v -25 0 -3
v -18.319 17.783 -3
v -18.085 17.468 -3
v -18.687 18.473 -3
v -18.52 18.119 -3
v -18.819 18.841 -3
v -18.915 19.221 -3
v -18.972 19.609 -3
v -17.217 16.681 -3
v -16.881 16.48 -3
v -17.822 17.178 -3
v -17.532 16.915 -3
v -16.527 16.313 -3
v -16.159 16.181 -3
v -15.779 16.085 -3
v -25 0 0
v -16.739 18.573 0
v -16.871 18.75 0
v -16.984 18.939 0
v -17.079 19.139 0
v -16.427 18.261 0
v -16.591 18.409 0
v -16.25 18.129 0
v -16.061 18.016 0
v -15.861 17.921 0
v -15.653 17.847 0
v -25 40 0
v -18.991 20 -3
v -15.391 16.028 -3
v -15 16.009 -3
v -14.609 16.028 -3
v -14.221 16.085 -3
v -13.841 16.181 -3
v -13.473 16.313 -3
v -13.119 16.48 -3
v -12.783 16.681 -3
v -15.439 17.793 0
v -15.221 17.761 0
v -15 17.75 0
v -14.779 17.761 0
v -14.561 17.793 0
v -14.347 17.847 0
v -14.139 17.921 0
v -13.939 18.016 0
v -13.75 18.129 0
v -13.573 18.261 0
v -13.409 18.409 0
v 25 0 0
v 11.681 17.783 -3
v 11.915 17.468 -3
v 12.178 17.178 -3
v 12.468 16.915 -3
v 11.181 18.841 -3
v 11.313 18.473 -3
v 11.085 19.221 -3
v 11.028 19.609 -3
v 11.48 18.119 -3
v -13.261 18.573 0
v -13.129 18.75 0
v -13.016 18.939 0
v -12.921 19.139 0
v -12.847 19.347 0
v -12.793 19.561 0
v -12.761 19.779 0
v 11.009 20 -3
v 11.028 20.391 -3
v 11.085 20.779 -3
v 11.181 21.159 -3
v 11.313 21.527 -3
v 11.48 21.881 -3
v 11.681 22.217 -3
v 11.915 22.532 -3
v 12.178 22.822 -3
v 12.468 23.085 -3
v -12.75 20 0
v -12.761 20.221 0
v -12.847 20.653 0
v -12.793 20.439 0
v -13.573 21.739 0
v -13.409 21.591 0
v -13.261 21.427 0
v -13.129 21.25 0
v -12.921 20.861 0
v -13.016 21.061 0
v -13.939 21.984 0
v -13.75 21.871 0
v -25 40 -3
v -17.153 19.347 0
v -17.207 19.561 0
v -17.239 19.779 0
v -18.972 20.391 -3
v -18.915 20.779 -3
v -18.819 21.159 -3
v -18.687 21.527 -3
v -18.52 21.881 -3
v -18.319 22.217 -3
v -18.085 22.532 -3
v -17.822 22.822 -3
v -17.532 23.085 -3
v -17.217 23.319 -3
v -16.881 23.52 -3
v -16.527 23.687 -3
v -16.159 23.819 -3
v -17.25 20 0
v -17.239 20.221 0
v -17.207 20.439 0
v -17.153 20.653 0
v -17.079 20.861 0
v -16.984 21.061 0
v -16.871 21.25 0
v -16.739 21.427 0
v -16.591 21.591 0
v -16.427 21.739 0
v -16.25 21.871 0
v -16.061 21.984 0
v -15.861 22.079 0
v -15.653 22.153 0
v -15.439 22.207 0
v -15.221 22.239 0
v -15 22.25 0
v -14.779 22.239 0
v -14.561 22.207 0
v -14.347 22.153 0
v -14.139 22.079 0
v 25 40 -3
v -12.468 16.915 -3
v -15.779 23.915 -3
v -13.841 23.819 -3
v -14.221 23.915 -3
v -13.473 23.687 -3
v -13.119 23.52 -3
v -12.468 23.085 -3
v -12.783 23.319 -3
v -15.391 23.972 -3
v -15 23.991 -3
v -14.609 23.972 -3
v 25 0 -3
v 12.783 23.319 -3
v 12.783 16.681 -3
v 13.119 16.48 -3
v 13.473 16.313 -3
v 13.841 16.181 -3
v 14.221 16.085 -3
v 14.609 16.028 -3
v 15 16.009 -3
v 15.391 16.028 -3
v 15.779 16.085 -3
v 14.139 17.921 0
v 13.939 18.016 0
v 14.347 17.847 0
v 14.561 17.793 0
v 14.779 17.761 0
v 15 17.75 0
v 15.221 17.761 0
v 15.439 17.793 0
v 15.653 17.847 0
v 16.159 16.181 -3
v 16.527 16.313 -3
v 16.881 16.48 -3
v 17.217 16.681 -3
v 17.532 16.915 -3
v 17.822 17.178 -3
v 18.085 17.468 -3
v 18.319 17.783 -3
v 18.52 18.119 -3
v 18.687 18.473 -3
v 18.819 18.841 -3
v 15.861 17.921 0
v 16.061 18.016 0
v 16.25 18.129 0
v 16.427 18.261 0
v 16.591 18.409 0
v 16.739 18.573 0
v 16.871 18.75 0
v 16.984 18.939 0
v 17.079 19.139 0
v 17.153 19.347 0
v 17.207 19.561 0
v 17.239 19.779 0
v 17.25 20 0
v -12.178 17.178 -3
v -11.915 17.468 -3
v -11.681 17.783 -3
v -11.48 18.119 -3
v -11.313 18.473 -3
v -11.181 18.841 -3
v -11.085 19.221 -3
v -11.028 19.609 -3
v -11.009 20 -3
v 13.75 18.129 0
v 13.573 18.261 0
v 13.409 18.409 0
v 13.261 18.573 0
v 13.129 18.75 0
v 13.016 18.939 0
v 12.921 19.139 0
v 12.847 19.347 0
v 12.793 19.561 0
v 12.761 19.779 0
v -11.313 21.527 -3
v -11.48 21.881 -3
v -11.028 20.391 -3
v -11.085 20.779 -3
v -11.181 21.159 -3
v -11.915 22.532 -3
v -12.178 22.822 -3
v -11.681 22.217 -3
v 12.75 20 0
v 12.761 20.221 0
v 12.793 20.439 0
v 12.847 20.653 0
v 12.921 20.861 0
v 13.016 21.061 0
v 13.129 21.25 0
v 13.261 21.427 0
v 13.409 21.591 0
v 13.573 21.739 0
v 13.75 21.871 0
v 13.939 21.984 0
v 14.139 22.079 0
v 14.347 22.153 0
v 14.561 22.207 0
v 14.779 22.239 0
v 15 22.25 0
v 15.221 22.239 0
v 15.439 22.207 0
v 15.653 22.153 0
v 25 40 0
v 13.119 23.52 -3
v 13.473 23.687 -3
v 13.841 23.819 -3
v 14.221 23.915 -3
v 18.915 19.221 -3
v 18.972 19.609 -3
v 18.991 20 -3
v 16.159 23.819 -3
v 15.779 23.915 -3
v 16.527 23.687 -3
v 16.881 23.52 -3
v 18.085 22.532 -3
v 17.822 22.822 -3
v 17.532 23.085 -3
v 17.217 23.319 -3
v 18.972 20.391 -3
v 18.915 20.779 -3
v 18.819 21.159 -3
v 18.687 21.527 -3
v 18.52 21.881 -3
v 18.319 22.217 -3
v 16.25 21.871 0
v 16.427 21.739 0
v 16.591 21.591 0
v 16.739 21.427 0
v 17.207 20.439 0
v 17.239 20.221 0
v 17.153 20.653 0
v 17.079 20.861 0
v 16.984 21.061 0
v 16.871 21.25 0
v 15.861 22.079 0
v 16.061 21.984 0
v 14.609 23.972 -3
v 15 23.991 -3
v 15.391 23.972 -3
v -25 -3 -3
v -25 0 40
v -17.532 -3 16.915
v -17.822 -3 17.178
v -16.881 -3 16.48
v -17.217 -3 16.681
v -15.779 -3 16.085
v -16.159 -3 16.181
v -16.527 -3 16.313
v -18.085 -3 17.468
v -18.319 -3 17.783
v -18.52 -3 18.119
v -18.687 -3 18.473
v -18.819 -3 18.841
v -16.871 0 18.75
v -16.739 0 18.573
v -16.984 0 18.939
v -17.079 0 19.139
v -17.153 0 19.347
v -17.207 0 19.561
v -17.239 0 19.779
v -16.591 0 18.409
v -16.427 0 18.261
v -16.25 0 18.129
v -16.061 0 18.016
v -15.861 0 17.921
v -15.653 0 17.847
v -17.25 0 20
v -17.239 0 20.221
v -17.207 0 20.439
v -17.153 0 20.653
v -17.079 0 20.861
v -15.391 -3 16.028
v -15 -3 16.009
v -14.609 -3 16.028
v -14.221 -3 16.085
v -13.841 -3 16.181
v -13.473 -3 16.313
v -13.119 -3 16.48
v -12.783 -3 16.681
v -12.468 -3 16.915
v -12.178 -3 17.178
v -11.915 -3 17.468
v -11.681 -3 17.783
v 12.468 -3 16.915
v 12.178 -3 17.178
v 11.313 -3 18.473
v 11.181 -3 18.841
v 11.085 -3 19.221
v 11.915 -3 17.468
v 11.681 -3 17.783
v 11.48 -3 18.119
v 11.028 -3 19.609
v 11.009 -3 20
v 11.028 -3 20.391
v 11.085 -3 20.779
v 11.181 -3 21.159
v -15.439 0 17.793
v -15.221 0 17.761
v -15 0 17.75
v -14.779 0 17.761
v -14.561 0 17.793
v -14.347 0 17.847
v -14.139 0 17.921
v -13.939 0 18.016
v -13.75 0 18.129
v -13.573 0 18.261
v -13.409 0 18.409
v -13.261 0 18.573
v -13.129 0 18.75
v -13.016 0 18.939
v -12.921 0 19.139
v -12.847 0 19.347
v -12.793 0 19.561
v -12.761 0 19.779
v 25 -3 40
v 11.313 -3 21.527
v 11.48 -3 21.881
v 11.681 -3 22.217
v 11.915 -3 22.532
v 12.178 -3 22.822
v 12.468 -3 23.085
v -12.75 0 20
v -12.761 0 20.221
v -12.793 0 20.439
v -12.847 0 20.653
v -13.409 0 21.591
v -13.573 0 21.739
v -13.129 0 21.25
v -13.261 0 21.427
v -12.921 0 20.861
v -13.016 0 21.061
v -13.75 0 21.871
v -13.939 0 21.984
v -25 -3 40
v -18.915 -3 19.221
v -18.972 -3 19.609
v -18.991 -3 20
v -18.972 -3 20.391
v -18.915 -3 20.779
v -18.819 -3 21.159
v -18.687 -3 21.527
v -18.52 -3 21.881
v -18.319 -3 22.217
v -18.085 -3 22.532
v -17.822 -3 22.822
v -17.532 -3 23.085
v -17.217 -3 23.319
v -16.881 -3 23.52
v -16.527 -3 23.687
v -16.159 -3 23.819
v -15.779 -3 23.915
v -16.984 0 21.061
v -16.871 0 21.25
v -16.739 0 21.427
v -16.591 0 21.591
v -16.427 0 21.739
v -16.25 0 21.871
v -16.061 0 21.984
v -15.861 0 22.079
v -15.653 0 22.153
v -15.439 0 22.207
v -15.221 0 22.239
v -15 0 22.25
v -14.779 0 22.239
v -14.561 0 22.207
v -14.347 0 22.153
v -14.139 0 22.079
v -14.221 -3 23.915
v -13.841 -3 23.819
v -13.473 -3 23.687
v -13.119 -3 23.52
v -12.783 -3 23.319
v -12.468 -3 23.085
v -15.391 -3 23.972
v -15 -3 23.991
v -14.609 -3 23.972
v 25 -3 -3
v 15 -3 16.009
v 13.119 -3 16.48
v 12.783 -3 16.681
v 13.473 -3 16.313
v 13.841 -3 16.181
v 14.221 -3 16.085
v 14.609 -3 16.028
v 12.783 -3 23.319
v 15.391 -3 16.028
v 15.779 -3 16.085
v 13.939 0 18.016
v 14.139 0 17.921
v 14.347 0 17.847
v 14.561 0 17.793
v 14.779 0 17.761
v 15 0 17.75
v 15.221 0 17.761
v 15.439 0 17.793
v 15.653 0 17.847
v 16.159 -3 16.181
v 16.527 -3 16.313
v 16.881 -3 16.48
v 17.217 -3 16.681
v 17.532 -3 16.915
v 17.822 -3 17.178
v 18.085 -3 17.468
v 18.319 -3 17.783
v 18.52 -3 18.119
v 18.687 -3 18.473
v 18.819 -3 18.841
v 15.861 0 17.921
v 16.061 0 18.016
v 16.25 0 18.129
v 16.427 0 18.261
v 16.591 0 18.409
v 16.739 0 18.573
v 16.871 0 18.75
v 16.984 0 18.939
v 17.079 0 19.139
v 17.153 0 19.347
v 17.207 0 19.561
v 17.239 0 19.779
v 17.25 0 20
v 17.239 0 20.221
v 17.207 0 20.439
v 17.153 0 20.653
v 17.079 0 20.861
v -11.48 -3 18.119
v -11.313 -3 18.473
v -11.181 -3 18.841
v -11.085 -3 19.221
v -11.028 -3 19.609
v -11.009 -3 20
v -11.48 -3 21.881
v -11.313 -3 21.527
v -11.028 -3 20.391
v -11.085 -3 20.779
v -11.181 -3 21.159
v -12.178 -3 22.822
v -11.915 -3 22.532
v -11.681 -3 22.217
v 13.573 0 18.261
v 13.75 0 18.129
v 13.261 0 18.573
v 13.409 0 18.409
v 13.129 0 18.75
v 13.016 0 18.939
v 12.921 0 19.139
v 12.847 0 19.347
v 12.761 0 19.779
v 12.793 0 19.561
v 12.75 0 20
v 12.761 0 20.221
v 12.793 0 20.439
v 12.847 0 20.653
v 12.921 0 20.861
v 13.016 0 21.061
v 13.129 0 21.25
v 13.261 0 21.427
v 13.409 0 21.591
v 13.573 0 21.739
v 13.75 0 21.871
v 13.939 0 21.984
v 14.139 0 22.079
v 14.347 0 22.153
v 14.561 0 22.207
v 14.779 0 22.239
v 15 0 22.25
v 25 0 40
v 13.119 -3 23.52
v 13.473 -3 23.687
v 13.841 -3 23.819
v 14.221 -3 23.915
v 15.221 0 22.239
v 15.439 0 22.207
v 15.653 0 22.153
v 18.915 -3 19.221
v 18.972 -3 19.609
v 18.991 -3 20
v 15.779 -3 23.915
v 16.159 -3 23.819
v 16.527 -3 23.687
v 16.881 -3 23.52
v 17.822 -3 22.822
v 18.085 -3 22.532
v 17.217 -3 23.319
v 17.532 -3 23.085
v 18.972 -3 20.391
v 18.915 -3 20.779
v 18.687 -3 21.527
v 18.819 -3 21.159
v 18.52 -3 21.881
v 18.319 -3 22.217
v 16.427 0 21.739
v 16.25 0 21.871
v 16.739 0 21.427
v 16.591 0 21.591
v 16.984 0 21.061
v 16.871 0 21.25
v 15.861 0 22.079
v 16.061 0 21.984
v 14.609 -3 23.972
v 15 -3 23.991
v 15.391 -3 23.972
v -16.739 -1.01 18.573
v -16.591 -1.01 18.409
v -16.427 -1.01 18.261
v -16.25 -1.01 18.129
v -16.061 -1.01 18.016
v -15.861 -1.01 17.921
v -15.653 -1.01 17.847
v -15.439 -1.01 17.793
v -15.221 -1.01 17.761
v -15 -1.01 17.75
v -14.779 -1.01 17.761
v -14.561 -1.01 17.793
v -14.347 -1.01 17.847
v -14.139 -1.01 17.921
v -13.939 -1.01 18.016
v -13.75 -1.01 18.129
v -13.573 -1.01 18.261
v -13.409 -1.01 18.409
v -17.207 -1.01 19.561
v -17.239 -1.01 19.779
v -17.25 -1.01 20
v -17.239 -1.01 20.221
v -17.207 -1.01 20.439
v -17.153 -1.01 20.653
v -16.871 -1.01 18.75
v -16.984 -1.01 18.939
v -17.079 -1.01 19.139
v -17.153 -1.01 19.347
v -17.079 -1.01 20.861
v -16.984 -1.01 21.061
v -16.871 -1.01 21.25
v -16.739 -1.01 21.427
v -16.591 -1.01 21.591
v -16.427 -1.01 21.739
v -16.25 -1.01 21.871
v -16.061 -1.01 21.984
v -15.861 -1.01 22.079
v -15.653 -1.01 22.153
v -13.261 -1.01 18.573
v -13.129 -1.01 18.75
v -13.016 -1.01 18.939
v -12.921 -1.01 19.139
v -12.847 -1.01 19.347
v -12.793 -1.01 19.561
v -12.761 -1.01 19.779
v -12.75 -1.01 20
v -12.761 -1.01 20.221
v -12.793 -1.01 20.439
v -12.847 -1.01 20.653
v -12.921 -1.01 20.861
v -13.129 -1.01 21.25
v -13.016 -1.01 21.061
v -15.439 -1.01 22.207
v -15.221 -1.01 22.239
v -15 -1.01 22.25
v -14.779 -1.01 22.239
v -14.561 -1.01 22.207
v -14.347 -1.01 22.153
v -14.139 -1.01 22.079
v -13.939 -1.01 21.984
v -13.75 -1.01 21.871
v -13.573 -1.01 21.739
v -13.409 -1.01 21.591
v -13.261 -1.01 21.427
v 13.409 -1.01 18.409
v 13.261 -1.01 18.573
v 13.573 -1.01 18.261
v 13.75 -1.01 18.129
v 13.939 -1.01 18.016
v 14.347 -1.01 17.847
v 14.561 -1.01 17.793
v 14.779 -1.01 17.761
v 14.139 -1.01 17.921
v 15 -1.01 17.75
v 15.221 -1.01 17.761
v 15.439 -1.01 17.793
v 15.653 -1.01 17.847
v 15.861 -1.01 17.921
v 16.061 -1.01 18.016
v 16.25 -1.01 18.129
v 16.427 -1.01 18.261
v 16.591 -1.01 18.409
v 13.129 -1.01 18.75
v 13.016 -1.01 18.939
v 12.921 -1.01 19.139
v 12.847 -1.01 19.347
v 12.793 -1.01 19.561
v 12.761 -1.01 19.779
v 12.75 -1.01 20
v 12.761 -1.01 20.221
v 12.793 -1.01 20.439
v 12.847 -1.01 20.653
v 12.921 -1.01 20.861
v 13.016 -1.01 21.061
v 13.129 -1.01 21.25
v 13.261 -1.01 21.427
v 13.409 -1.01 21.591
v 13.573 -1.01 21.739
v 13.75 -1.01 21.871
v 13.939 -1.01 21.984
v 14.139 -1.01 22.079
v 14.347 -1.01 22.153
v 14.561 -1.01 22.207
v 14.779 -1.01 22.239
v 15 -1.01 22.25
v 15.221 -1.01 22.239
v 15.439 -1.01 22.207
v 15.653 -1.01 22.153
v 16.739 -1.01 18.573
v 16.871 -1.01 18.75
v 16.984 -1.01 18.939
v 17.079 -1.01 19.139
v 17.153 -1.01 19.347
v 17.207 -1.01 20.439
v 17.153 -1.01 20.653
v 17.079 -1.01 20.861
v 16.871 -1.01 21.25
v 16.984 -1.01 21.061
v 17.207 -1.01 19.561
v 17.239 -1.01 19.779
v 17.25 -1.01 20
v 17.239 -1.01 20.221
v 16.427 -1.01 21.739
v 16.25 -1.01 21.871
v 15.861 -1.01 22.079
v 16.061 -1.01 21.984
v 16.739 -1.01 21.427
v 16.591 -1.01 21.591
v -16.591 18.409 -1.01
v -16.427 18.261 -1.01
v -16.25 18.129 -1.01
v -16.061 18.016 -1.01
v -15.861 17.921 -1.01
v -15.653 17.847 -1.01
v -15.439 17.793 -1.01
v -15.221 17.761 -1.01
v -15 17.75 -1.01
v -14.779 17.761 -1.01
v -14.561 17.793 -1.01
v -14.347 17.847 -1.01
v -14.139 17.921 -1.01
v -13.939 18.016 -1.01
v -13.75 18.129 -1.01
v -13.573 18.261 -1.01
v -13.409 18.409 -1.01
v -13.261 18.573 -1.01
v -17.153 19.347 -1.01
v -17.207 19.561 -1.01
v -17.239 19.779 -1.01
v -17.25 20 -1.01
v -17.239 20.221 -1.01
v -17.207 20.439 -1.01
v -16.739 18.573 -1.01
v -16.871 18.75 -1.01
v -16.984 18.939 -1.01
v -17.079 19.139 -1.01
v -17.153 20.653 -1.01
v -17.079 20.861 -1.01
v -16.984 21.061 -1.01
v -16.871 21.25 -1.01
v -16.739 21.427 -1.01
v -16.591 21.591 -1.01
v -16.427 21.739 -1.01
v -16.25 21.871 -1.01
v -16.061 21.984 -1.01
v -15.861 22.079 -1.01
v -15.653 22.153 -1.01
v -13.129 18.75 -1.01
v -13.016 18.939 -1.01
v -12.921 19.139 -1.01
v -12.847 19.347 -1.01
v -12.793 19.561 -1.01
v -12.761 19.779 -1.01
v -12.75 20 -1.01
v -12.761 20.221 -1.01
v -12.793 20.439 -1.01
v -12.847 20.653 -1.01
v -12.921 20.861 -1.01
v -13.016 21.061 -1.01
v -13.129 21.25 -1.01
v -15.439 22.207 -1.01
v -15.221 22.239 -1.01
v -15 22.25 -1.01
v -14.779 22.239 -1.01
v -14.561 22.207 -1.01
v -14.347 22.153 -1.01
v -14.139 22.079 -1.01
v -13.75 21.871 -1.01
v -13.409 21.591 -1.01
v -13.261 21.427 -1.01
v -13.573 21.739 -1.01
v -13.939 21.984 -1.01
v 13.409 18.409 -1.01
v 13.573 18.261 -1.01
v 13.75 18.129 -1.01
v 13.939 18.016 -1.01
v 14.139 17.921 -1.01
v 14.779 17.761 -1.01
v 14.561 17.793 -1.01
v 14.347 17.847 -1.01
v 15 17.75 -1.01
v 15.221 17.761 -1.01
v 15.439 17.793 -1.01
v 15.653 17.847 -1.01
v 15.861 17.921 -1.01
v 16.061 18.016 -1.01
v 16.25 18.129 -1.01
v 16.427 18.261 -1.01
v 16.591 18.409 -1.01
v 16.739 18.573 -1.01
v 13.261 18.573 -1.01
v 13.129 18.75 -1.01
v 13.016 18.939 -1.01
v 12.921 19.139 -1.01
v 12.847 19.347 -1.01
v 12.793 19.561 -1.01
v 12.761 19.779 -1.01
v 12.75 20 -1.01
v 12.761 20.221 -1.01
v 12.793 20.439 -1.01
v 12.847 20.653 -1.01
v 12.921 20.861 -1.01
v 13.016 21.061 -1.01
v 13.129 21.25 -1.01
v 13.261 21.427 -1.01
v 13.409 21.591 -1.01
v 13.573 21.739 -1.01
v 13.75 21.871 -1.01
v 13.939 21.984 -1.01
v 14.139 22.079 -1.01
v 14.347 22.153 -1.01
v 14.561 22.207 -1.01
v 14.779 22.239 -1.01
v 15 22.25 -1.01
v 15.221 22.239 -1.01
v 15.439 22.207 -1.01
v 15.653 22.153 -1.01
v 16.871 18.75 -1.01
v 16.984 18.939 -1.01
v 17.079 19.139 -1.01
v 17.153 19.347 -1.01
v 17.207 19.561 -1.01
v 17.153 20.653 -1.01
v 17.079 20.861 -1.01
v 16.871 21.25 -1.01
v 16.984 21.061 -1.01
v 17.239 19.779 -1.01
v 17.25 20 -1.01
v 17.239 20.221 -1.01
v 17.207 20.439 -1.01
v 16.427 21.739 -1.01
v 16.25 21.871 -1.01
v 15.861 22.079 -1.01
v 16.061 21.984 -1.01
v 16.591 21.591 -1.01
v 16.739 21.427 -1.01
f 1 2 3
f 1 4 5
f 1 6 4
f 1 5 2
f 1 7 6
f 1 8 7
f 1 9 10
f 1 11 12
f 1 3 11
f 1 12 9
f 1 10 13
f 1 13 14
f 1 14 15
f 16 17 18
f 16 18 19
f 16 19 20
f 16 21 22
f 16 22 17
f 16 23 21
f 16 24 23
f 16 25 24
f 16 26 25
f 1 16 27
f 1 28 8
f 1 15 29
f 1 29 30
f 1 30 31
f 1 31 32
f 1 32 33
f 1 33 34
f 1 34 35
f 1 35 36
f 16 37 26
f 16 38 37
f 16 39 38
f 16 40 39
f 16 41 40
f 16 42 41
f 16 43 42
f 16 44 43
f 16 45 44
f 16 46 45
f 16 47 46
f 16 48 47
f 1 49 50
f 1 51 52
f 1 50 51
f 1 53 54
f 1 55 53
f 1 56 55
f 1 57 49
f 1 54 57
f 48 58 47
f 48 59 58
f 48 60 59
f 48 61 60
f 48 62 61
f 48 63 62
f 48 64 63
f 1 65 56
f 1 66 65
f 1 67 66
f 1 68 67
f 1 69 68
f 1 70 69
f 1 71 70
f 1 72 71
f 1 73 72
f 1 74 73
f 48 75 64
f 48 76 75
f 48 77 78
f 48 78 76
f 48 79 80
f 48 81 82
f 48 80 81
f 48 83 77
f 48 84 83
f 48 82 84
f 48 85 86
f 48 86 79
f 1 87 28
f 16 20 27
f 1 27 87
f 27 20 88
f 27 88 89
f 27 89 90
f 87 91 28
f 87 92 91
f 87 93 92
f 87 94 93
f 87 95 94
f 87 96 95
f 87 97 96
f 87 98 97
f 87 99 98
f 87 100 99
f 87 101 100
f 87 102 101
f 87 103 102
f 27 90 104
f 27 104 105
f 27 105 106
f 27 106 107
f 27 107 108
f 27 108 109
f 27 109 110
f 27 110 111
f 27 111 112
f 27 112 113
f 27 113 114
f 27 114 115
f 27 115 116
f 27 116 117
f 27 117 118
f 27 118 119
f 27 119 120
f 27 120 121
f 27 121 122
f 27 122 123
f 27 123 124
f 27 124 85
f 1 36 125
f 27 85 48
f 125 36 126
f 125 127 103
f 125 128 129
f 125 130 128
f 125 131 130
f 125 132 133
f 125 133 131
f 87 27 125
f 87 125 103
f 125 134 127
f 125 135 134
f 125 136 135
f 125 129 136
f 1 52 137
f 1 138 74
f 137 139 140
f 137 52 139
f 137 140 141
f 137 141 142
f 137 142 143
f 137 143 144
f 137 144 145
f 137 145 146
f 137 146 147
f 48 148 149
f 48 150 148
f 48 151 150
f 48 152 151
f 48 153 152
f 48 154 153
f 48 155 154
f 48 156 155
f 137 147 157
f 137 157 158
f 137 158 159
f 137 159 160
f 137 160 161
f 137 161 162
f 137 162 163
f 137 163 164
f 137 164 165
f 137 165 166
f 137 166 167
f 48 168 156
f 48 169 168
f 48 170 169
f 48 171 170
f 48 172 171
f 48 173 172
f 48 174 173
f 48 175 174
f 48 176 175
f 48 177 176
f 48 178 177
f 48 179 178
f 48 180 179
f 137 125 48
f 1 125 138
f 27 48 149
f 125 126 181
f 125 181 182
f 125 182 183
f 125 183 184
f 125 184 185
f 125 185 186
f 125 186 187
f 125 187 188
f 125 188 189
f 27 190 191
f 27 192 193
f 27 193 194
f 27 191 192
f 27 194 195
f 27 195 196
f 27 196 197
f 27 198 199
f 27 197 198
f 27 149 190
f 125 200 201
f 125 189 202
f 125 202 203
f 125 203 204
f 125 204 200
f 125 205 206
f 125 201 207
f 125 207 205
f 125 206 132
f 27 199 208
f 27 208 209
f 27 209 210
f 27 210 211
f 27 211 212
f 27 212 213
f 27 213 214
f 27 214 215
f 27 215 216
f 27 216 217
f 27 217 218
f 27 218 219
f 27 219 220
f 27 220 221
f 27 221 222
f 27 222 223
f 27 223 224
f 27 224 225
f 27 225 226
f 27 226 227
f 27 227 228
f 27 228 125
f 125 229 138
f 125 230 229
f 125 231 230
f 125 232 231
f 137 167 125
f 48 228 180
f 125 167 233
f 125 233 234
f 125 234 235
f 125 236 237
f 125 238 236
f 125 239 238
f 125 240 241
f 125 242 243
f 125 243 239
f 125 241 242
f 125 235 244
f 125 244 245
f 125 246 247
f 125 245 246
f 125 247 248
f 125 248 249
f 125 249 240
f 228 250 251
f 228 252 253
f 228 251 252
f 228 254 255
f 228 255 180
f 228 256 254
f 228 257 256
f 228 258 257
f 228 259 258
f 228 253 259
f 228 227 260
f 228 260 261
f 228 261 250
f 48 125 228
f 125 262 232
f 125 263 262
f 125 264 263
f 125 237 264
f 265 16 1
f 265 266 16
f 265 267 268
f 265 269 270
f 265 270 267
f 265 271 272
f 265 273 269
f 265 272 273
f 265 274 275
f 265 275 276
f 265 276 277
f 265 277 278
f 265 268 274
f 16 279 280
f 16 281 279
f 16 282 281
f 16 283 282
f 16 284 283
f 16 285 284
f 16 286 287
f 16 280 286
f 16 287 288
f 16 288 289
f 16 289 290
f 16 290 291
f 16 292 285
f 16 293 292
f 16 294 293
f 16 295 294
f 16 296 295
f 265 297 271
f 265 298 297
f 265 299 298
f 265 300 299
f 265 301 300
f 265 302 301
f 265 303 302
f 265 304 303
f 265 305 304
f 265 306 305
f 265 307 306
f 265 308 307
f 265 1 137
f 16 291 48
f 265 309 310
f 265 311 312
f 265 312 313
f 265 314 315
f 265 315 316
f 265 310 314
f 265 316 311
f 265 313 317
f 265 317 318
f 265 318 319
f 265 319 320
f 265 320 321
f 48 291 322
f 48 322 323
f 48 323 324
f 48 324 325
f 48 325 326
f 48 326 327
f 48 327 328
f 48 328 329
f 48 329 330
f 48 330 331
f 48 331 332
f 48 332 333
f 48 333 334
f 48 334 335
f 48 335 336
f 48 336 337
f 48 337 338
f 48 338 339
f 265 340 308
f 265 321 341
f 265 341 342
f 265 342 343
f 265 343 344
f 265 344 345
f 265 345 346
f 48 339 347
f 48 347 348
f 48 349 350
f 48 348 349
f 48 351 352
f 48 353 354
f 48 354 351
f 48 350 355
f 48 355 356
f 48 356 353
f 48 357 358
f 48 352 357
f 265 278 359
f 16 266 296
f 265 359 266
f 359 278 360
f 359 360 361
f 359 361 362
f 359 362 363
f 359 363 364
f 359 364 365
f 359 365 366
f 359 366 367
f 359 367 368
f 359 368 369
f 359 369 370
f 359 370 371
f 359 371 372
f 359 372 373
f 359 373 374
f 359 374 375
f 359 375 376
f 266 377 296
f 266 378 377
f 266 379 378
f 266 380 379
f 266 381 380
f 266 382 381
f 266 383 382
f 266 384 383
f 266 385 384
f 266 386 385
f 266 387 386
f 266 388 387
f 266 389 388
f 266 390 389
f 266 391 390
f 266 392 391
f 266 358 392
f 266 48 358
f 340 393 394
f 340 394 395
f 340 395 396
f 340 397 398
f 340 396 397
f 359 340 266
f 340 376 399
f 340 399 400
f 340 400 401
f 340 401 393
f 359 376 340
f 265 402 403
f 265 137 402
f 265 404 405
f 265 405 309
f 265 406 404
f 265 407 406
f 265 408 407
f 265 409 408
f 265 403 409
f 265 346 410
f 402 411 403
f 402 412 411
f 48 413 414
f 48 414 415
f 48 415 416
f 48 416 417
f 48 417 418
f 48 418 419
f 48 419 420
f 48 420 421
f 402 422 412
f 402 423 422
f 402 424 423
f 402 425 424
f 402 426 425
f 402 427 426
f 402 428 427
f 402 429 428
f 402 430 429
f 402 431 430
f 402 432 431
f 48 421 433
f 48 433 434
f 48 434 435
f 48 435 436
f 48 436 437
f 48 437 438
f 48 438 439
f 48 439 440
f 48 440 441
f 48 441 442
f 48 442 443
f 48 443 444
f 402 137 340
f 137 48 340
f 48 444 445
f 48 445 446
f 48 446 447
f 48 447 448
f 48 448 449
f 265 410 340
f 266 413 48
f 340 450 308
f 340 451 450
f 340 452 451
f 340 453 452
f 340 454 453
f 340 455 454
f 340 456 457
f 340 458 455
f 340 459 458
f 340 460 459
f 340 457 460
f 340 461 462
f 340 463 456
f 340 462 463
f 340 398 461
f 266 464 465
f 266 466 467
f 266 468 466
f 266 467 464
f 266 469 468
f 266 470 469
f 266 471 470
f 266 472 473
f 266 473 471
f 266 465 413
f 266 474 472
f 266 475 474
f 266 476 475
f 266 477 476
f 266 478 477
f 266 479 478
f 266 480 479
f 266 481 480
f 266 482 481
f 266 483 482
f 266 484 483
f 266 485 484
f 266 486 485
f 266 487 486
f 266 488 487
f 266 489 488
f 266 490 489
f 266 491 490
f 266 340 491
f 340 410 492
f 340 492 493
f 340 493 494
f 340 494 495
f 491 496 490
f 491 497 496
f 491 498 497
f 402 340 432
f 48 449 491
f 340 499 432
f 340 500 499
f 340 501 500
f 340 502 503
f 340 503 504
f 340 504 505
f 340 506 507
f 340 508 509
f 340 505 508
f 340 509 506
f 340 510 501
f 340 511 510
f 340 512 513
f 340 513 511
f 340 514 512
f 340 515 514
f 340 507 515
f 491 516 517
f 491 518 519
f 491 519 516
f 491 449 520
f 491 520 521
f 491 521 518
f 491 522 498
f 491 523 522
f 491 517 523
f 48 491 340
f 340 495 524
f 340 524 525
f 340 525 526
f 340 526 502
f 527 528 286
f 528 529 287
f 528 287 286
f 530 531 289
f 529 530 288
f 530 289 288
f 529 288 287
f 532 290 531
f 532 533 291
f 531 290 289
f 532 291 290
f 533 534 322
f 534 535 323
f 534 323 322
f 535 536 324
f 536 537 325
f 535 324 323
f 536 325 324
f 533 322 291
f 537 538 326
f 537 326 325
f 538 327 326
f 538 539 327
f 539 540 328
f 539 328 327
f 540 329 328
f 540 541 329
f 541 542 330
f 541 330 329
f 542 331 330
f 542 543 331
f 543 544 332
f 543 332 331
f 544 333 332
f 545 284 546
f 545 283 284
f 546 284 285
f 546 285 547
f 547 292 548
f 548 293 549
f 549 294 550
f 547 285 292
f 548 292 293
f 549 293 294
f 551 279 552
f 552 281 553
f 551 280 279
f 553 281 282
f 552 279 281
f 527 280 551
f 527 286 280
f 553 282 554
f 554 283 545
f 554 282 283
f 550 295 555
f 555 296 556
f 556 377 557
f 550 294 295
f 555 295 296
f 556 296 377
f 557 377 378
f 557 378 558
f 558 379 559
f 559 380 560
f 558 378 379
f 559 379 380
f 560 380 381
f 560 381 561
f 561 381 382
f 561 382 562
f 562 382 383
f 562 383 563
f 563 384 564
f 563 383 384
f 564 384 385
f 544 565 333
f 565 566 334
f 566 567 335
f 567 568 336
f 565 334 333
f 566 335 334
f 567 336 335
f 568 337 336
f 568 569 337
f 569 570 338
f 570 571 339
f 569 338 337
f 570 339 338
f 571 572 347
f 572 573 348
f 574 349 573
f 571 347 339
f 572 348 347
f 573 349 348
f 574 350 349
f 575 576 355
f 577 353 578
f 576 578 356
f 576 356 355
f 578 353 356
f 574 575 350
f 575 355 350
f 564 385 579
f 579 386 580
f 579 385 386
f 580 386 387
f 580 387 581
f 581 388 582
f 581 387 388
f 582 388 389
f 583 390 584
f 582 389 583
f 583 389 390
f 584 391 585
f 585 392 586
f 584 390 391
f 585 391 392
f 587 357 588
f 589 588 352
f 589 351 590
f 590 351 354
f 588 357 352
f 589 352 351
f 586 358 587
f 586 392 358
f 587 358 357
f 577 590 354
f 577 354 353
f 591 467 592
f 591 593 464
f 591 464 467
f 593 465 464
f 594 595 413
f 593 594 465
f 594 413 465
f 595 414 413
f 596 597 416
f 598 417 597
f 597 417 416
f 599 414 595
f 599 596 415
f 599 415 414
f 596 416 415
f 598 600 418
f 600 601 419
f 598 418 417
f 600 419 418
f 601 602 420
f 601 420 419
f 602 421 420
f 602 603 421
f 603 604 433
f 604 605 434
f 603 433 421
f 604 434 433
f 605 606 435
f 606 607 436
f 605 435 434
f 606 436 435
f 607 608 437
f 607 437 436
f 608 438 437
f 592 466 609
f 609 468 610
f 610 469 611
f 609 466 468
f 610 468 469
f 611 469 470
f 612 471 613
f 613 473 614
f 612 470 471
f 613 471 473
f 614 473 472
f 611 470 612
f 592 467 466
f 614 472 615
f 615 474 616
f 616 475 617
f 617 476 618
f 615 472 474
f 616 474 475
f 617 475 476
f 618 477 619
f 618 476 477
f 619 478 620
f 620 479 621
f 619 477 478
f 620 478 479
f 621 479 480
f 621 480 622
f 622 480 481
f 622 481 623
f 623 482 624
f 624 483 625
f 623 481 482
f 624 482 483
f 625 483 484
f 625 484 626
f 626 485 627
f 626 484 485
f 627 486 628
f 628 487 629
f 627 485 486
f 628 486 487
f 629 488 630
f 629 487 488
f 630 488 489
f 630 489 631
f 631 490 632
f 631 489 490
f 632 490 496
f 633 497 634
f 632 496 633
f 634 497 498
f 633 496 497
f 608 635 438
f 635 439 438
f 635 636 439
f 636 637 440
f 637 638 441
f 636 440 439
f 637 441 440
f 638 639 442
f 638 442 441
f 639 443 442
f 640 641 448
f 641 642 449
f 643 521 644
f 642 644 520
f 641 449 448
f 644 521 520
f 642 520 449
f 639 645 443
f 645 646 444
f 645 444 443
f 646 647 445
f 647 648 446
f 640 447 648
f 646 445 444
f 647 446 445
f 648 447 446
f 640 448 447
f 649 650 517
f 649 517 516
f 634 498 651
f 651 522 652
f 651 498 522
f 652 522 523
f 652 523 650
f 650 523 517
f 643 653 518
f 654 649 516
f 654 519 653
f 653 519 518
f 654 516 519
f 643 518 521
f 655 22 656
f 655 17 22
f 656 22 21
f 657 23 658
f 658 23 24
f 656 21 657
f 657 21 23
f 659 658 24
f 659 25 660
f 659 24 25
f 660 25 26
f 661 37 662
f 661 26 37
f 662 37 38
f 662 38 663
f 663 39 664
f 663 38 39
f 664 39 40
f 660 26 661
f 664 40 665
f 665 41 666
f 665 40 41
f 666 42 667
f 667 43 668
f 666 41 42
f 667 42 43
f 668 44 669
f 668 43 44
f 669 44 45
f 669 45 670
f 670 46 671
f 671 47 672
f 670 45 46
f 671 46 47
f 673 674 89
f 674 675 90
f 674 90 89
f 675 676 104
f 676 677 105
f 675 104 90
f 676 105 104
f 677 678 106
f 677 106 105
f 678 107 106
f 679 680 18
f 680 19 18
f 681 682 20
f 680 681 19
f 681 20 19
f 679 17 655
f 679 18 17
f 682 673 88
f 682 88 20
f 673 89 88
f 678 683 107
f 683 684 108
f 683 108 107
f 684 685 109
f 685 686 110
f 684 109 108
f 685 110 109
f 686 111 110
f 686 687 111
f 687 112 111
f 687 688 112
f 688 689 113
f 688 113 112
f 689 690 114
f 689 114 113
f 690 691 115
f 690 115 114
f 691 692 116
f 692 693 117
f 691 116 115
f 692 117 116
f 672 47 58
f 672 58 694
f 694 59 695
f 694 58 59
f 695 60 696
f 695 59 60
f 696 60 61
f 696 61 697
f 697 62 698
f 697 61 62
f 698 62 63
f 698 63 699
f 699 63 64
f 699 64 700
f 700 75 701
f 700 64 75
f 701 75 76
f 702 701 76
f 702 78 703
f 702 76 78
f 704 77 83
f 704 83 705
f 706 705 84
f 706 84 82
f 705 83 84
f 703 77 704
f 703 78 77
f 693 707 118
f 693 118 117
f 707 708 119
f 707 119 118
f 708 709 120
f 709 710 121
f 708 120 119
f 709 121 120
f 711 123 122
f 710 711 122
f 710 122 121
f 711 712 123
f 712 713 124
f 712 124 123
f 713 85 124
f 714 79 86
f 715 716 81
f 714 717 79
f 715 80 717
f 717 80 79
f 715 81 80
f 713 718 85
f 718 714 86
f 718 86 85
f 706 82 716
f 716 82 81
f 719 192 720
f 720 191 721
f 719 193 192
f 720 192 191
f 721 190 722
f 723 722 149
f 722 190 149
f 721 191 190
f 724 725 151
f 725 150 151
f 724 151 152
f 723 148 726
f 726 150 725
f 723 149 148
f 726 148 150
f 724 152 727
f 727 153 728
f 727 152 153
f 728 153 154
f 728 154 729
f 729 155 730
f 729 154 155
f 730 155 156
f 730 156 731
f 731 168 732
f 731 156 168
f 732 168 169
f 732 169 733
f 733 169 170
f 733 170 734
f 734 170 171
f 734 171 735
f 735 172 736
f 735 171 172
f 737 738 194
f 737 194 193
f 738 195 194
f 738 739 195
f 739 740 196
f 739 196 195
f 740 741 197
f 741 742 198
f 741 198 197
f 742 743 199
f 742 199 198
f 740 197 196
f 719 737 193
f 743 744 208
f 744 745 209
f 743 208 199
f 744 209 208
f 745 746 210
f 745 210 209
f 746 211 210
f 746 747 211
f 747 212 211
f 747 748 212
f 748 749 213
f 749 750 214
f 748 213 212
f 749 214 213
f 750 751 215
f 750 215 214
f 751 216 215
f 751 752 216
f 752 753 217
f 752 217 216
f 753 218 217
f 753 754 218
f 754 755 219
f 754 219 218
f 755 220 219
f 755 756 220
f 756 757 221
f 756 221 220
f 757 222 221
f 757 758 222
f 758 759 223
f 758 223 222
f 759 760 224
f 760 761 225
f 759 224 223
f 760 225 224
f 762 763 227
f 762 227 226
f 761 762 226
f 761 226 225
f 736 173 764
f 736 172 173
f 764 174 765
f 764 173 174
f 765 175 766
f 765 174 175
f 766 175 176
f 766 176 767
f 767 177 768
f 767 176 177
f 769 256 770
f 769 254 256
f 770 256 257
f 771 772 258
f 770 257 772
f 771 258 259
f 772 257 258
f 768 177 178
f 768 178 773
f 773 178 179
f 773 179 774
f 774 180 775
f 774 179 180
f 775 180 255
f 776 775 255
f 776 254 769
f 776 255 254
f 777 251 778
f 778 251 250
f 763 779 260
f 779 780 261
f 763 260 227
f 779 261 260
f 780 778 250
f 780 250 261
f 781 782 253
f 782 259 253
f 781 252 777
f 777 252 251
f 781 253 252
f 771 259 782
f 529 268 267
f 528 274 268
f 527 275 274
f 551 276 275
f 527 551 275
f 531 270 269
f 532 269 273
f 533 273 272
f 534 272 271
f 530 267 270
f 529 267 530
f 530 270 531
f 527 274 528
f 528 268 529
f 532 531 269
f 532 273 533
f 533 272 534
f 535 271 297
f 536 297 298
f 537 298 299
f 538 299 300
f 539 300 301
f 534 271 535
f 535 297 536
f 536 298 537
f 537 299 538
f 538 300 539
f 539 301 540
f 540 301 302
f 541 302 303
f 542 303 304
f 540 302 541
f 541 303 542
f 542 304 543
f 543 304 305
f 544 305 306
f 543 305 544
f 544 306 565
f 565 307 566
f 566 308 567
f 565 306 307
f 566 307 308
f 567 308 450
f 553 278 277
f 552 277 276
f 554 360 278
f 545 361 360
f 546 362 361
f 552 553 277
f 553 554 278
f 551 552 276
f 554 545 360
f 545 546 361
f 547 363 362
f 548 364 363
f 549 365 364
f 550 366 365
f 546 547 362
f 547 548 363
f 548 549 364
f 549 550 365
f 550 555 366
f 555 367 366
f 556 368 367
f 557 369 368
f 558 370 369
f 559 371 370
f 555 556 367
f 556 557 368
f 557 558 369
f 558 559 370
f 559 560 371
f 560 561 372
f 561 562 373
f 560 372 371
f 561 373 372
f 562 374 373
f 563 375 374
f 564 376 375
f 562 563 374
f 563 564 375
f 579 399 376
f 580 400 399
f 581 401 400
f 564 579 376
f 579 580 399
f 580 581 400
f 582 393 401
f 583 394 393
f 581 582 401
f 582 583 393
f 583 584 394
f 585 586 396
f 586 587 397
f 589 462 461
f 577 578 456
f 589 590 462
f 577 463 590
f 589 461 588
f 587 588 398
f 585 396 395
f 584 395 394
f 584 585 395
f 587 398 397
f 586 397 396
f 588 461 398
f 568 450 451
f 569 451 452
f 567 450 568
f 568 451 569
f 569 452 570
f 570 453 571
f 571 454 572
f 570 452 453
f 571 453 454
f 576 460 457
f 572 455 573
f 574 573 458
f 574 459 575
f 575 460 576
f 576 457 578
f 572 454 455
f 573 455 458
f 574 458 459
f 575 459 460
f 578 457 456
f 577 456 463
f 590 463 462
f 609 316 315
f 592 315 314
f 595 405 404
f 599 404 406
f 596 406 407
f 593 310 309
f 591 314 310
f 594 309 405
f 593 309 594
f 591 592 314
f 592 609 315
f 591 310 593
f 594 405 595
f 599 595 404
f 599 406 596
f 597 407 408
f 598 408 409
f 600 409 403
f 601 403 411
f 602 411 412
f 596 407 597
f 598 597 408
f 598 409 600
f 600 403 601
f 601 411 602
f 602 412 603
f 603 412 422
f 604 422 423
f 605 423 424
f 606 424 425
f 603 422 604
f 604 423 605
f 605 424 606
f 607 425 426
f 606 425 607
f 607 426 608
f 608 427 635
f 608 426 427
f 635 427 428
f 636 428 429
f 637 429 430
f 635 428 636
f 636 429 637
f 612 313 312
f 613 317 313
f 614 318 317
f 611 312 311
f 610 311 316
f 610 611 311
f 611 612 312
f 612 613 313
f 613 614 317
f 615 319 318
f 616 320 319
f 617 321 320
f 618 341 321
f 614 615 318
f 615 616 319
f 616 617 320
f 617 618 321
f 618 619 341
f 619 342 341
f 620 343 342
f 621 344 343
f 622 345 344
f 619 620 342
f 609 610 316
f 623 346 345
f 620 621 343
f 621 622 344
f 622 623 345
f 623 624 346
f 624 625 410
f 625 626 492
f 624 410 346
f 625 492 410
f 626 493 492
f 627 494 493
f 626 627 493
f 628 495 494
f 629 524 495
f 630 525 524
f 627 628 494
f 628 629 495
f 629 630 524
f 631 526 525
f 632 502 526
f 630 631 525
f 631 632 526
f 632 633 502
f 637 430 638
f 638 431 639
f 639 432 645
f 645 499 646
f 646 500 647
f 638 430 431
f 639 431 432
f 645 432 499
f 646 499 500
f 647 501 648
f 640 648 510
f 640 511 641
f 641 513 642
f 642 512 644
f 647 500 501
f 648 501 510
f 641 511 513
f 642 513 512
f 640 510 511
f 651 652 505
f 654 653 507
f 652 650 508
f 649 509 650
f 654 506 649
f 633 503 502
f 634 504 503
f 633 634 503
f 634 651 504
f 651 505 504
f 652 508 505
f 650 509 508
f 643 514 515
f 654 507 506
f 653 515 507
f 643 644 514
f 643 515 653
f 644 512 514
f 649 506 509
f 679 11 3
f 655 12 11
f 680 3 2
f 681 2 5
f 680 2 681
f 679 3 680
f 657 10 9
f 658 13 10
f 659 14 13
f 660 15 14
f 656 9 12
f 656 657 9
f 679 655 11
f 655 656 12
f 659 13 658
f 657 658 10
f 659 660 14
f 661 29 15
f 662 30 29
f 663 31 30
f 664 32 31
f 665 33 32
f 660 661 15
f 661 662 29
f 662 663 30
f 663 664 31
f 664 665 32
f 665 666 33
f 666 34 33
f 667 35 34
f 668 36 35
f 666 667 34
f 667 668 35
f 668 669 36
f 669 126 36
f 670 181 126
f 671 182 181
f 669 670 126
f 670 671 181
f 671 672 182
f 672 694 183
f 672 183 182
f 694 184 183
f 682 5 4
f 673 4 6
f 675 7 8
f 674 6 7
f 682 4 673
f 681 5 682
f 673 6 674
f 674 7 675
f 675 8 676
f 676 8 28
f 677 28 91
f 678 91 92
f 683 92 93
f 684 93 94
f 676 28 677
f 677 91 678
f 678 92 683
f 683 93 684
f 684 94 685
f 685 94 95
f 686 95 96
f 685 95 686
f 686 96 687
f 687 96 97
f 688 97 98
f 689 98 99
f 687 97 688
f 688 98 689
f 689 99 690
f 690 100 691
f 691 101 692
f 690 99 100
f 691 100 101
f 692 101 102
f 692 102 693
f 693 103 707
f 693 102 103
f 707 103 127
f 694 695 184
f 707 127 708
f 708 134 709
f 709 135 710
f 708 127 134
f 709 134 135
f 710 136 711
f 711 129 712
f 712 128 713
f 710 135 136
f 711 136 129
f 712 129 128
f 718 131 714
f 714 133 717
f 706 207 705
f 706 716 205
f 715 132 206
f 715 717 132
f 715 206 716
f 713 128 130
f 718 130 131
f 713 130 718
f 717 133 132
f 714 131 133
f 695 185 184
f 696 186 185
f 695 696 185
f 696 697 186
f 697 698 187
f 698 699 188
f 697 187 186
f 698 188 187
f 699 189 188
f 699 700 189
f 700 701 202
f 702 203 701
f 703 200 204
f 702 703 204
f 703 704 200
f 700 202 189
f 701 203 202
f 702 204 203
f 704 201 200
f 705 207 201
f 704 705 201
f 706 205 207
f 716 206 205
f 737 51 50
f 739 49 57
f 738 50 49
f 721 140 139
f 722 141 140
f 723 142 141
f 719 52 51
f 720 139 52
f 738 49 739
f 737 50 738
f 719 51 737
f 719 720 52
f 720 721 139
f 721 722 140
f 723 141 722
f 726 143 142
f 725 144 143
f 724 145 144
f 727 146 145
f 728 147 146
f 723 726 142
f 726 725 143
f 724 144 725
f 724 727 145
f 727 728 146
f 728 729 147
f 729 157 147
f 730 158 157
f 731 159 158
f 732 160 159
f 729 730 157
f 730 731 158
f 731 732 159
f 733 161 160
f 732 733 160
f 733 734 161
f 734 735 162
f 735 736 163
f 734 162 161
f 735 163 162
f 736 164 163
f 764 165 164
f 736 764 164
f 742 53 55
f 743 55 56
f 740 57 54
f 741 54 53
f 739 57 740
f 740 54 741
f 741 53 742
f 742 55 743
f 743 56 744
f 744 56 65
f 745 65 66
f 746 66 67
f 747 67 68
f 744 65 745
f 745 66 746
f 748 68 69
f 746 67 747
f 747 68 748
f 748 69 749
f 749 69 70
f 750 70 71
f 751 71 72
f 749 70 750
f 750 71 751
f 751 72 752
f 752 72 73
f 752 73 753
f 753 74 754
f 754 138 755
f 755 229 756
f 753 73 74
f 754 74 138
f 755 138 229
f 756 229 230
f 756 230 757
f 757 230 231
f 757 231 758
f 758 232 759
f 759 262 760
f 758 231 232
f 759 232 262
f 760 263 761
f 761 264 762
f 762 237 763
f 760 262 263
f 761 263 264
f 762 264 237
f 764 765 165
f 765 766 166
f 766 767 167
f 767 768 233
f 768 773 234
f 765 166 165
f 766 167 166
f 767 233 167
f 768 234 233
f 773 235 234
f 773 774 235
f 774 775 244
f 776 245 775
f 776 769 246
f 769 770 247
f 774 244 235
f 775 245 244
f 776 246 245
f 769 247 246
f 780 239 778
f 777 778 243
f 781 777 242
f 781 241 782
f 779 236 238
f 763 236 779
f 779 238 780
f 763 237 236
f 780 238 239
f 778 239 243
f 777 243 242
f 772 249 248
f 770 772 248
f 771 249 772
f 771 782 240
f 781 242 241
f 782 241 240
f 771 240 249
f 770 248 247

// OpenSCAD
$fn = 64;

width = 50;       // X 方向の幅
depth = 40;       // 水平面の奥行き (Y)
height = 40;      // 垂直面の高さ (Z)
t = 3;            // 板厚

hole_d = 4.5;     // M4 貫通穴
cs_d = 8;         // 皿座面径
cs_depth = 2;     // 皿座面深さ
edge = 10;        // 縁からのオフセット

module countersunk_hole() {
    // Z+ 方向に貫通、Z=0 側(外側)に皿座面
    translate([0, 0, -0.5])
        cylinder(d = hole_d, h = t + 1);
    translate([0, 0, -0.01])
        cylinder(d1 = cs_d, d2 = hole_d, h = cs_depth);
}

difference() {
    union() {
        // 水平フランジ(内側コーナー上面 z=0、下に板厚)
        translate([-width/2, 0, -t])
            cube([width, depth, t]);
        // 垂直フランジ(内側コーナー面 y=0、後ろに板厚)
        translate([-width/2, -t, -t])
            cube([width, t, height + t]);
    }

    // 水平面の穴(皿座面は下=外側)
    for (x = [-(width/2 - edge), width/2 - edge])
        translate([x, depth/2, -t])
            countersunk_hole();

    // 垂直面の穴(皿座面は後ろ=外側)
    for (x = [-(width/2 - edge), width/2 - edge])
        translate([x, -t, height/2])
            rotate([-90, 0, 0])
                countersunk_hole();
}
